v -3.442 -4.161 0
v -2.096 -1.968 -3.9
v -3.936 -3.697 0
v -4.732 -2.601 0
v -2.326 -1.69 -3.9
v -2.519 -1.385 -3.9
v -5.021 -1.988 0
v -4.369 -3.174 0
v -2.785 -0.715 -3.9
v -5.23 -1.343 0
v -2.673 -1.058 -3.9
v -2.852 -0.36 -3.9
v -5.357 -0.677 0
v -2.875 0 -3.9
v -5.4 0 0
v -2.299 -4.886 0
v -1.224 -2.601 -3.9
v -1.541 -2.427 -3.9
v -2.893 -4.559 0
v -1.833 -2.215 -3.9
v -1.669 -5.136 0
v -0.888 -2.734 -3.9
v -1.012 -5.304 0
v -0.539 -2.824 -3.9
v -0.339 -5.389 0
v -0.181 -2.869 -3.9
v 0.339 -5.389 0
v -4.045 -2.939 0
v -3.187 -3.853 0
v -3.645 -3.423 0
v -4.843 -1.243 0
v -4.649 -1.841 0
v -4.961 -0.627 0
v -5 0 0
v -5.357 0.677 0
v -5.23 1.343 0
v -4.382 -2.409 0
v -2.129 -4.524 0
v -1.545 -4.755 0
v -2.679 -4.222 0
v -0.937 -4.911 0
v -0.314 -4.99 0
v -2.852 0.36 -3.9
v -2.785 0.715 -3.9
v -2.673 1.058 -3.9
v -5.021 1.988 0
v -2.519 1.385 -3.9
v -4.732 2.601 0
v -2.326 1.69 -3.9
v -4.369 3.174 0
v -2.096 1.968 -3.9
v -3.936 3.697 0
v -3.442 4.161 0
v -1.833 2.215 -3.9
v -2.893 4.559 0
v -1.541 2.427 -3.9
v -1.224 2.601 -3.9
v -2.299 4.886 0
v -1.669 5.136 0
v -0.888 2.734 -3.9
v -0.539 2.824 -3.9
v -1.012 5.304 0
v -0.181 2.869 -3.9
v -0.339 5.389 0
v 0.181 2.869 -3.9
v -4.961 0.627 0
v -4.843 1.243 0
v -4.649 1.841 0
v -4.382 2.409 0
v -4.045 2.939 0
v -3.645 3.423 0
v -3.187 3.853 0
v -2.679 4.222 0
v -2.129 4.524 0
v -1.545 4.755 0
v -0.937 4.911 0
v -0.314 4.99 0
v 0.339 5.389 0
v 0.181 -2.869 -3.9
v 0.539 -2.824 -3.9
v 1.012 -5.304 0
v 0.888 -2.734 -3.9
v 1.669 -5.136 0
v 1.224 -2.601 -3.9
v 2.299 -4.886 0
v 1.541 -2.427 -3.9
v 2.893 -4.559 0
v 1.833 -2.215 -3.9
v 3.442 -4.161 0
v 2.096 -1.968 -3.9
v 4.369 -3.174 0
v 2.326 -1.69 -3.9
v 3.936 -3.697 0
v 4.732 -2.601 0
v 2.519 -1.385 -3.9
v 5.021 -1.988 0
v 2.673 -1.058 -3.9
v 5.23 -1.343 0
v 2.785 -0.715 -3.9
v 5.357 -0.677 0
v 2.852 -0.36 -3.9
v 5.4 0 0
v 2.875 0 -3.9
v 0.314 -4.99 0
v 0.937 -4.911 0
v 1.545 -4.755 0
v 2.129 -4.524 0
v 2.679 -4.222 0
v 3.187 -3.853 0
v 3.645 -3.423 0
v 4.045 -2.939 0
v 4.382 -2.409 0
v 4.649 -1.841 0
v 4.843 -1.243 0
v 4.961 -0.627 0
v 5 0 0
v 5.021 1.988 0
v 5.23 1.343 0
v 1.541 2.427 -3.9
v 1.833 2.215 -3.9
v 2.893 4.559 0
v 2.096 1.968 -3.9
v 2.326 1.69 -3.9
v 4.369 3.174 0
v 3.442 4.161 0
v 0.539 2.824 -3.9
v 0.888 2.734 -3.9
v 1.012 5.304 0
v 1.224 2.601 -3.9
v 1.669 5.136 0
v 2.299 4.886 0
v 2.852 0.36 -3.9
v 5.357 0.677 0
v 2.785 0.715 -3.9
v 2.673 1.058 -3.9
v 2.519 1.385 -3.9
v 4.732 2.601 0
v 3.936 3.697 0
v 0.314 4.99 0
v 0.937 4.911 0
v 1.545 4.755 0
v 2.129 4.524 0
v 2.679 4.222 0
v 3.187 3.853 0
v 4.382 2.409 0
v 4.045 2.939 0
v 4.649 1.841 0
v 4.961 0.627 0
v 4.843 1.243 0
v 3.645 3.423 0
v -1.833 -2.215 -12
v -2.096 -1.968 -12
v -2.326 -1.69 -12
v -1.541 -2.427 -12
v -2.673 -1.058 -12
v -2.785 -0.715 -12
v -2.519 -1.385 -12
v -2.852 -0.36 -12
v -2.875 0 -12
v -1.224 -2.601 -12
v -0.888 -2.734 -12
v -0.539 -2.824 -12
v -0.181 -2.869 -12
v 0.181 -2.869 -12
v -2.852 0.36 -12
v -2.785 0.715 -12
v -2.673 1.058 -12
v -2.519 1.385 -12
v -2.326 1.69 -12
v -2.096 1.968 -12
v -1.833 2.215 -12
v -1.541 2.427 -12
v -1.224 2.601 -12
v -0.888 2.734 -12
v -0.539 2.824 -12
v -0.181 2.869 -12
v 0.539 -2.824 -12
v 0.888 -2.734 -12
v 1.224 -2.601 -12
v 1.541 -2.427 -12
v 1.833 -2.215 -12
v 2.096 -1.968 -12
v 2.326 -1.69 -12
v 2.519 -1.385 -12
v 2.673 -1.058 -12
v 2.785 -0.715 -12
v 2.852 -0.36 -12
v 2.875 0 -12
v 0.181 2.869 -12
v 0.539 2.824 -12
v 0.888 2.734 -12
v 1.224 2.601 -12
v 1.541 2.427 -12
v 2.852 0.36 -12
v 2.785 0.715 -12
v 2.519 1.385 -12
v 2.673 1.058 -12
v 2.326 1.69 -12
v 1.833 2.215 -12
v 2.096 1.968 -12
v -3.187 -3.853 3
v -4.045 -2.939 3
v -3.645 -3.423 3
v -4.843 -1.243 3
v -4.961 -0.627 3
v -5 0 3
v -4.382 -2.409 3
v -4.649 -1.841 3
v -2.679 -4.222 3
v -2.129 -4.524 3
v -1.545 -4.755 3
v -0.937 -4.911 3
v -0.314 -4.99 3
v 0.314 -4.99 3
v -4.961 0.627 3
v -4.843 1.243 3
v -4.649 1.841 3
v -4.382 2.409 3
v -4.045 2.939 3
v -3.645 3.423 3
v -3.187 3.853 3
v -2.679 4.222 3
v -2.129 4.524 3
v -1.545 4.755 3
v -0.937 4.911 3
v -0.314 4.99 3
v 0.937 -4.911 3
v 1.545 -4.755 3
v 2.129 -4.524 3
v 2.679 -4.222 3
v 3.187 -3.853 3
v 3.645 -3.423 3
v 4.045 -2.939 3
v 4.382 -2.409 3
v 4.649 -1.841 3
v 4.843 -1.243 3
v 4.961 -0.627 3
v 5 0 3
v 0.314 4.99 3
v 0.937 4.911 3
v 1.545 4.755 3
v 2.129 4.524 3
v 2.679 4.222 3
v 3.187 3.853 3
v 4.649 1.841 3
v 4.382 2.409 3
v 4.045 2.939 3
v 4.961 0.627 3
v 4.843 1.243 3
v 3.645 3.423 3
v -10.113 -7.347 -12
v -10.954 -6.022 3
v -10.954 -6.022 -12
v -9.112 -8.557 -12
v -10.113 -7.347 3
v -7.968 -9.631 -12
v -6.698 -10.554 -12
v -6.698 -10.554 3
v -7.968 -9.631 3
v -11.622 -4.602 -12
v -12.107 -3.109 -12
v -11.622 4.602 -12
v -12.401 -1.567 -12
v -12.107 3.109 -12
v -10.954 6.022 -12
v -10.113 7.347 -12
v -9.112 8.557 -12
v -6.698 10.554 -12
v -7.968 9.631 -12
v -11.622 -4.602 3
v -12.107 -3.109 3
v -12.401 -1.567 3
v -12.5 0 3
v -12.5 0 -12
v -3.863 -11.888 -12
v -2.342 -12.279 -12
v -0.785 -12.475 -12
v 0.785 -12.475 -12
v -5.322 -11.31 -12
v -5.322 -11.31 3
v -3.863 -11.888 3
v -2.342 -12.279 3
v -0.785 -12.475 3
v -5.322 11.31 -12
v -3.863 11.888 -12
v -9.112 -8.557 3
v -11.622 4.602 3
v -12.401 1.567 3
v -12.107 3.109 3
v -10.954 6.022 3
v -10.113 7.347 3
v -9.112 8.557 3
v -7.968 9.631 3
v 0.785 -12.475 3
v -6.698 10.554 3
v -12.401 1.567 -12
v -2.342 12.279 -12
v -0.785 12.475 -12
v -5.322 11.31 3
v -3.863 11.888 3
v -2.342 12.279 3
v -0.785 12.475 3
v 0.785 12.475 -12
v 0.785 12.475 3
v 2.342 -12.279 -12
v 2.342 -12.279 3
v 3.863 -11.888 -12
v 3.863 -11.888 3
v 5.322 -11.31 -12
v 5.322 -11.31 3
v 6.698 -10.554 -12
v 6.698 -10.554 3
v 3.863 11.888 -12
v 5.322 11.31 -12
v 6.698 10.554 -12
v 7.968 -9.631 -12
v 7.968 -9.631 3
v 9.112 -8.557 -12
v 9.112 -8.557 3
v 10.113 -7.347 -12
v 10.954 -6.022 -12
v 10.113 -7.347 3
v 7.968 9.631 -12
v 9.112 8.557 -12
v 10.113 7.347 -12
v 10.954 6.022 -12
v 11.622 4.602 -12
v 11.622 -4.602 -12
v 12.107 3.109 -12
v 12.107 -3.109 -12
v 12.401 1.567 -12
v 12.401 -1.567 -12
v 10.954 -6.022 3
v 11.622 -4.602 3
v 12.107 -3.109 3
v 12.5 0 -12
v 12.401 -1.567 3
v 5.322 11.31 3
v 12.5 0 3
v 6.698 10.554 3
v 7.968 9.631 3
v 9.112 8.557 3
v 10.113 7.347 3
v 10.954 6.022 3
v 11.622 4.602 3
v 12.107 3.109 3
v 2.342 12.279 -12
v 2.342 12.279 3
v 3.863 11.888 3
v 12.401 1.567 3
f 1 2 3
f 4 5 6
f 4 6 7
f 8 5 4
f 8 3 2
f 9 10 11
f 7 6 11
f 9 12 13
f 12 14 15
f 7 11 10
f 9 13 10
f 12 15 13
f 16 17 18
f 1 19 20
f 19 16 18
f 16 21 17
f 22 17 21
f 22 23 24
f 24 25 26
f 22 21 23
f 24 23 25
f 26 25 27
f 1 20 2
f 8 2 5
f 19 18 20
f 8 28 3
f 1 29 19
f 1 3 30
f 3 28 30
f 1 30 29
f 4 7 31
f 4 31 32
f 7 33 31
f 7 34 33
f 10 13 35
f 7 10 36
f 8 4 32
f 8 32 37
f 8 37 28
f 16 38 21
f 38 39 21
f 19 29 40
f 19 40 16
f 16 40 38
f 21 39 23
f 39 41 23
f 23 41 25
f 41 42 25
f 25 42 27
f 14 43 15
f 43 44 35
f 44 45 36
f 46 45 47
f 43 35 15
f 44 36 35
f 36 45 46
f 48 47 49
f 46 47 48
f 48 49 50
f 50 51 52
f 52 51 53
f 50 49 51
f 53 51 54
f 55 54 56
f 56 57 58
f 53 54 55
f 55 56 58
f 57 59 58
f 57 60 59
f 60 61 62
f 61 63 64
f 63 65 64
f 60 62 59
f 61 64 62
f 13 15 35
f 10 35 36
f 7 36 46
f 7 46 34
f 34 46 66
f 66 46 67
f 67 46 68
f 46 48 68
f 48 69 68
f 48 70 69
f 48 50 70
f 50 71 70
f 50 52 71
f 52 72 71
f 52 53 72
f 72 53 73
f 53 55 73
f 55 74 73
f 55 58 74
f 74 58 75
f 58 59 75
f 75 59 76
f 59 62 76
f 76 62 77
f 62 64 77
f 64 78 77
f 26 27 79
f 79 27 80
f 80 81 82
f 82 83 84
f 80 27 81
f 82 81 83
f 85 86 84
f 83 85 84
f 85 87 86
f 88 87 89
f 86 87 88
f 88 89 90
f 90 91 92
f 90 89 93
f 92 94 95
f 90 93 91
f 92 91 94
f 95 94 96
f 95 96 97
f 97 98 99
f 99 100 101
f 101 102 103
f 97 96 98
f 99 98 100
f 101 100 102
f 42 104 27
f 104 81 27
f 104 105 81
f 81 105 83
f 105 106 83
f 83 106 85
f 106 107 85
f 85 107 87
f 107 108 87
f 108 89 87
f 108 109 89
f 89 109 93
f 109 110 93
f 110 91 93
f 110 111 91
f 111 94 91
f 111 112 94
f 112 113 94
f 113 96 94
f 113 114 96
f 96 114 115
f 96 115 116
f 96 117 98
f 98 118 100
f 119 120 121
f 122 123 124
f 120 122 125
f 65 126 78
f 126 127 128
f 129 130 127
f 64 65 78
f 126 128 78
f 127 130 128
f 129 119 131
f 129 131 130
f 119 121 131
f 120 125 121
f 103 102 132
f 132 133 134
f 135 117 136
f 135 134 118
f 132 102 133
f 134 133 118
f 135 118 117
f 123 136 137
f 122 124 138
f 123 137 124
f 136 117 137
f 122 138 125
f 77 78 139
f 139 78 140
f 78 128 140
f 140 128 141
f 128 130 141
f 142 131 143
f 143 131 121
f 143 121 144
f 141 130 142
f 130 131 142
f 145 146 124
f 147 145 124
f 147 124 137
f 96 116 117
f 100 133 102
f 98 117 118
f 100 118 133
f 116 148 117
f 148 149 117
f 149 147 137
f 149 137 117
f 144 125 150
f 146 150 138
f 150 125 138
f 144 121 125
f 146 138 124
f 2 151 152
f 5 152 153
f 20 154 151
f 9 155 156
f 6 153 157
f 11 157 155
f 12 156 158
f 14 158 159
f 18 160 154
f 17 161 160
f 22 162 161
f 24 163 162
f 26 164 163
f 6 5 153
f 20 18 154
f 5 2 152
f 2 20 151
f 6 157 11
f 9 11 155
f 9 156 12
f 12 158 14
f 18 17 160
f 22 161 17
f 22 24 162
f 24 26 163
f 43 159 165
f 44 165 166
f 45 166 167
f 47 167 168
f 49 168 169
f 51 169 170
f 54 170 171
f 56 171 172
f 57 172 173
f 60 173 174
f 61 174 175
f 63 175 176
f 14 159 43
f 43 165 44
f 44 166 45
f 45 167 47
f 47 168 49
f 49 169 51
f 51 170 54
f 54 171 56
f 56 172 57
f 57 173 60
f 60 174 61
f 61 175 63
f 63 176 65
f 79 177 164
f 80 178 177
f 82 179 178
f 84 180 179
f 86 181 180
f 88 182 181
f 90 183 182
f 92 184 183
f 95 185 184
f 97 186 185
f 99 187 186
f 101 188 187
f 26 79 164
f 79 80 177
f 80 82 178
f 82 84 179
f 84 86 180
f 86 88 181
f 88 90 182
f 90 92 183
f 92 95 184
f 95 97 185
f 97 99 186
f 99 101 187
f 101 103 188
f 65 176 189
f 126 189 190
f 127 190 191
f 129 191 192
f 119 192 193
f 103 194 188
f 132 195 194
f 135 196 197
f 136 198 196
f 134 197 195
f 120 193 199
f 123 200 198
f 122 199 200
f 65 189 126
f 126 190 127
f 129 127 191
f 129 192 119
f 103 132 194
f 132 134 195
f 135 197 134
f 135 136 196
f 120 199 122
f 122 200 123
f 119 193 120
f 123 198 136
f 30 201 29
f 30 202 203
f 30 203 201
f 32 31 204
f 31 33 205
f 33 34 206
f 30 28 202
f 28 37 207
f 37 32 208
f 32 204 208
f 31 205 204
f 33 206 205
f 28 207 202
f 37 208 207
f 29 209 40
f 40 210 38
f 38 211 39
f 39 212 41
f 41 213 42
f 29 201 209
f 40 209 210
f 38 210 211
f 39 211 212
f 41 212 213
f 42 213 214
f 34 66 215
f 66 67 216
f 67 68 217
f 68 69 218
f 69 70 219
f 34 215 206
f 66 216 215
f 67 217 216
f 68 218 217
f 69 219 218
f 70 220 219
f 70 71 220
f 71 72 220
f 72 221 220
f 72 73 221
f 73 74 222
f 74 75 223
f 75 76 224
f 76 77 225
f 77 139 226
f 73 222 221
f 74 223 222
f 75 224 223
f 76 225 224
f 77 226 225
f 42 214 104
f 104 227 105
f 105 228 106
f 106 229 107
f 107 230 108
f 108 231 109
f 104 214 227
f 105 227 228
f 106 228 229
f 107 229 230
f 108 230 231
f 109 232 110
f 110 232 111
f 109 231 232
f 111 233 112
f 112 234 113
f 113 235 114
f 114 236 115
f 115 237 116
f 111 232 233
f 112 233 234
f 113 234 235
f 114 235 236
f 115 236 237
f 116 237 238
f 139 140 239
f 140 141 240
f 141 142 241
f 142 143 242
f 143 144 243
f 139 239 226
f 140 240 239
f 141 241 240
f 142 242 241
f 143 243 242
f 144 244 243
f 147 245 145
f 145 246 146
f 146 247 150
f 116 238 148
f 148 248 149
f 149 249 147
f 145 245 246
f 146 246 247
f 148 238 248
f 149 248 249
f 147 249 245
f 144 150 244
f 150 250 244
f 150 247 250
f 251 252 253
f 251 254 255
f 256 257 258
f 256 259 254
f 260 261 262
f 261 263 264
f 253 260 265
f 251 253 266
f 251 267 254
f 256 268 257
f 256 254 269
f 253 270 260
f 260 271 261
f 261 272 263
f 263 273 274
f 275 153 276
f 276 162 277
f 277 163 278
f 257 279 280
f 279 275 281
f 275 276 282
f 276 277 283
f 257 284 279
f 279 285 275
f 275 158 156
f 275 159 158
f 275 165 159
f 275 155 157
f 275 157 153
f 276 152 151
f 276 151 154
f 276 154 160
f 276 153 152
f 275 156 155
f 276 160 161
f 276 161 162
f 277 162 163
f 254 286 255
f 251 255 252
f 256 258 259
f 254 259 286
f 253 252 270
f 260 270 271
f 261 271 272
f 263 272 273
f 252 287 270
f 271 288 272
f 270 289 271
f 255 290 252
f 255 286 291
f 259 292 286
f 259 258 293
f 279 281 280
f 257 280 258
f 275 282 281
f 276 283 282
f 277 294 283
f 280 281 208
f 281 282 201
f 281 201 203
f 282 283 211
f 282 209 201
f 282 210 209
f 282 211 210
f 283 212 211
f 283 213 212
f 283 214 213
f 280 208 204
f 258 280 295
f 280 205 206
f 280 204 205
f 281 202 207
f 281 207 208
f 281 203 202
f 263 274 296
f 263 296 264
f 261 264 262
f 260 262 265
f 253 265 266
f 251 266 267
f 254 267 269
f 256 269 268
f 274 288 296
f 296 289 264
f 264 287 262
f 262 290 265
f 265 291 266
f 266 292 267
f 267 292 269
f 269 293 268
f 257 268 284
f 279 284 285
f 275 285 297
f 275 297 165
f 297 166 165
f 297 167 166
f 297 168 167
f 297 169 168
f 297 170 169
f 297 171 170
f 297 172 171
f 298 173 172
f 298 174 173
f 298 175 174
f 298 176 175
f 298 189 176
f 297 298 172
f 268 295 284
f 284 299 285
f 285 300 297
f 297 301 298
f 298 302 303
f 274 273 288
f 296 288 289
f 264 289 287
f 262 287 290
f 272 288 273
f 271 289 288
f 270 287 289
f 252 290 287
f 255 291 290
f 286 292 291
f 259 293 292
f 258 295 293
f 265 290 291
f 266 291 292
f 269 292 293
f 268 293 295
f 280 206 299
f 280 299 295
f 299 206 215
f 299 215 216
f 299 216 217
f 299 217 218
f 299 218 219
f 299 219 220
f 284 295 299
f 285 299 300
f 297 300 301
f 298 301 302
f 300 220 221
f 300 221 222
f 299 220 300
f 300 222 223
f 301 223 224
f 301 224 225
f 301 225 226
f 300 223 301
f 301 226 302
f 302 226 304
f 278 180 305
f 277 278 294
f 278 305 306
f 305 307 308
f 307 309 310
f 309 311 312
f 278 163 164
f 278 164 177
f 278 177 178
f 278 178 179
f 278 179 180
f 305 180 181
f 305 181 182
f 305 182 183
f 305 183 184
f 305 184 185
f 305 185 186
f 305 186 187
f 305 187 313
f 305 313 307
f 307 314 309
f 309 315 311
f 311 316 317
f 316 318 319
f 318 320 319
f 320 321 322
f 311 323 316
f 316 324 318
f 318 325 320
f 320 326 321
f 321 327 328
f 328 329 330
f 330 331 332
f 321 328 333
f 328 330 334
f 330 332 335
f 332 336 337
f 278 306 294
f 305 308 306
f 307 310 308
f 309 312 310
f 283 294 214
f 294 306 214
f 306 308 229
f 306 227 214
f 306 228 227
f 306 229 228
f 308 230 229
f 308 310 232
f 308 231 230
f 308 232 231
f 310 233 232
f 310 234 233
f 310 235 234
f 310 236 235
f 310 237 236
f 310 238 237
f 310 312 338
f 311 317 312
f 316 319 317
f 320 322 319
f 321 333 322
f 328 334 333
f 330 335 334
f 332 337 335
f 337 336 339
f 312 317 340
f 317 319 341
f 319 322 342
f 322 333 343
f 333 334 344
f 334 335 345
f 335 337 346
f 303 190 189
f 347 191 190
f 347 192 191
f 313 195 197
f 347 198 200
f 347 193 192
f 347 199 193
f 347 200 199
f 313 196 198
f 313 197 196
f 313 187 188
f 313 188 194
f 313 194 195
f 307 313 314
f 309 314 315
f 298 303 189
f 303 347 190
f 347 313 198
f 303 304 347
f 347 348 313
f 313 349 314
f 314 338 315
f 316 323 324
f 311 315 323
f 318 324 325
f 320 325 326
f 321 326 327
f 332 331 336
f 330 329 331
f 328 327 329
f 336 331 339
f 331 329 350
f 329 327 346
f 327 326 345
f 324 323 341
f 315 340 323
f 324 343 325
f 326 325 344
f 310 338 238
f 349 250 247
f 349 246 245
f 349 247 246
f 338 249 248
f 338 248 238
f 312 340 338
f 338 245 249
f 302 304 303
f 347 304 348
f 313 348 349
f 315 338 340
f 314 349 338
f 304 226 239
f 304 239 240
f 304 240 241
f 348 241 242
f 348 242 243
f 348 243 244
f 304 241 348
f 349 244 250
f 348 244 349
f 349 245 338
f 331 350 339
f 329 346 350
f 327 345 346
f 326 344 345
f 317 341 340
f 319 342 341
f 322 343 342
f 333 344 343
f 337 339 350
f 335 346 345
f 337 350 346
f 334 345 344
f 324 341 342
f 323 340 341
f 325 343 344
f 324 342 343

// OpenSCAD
$fn = 50;


difference() {
	union() {
		translate(v = [0, 0, -12.0000000000]) {
			cylinder(h = 15, r = 12.5000000000);
		}
	}
	union() {
		translate(v = [0, 0, 0]) {
			rotate(a = [0, 0, 0]) {
				difference() {
					union() {
						translate(v = [0, 0, -15.0000000000]) {
							cylinder(h = 15, r = 2.6000000000);
						}
						translate(v = [0, 0, -3.9000000000]) {
							cylinder(h = 3.9000000000, r1 = 2.8750000000, r2 = 5.4000000000);
						}
						translate(v = [0, 0, -15.0000000000]) {
							cylinder(h = 15, r = 2.8750000000);
						}
						translate(v = [0, 0, -15.0000000000]) {
							cylinder(h = 15, r = 2.6000000000);
						}
					}
					union();
				}
			}
		}
		#cylinder(h = 3, r = 5.0000000000);
	}
}
